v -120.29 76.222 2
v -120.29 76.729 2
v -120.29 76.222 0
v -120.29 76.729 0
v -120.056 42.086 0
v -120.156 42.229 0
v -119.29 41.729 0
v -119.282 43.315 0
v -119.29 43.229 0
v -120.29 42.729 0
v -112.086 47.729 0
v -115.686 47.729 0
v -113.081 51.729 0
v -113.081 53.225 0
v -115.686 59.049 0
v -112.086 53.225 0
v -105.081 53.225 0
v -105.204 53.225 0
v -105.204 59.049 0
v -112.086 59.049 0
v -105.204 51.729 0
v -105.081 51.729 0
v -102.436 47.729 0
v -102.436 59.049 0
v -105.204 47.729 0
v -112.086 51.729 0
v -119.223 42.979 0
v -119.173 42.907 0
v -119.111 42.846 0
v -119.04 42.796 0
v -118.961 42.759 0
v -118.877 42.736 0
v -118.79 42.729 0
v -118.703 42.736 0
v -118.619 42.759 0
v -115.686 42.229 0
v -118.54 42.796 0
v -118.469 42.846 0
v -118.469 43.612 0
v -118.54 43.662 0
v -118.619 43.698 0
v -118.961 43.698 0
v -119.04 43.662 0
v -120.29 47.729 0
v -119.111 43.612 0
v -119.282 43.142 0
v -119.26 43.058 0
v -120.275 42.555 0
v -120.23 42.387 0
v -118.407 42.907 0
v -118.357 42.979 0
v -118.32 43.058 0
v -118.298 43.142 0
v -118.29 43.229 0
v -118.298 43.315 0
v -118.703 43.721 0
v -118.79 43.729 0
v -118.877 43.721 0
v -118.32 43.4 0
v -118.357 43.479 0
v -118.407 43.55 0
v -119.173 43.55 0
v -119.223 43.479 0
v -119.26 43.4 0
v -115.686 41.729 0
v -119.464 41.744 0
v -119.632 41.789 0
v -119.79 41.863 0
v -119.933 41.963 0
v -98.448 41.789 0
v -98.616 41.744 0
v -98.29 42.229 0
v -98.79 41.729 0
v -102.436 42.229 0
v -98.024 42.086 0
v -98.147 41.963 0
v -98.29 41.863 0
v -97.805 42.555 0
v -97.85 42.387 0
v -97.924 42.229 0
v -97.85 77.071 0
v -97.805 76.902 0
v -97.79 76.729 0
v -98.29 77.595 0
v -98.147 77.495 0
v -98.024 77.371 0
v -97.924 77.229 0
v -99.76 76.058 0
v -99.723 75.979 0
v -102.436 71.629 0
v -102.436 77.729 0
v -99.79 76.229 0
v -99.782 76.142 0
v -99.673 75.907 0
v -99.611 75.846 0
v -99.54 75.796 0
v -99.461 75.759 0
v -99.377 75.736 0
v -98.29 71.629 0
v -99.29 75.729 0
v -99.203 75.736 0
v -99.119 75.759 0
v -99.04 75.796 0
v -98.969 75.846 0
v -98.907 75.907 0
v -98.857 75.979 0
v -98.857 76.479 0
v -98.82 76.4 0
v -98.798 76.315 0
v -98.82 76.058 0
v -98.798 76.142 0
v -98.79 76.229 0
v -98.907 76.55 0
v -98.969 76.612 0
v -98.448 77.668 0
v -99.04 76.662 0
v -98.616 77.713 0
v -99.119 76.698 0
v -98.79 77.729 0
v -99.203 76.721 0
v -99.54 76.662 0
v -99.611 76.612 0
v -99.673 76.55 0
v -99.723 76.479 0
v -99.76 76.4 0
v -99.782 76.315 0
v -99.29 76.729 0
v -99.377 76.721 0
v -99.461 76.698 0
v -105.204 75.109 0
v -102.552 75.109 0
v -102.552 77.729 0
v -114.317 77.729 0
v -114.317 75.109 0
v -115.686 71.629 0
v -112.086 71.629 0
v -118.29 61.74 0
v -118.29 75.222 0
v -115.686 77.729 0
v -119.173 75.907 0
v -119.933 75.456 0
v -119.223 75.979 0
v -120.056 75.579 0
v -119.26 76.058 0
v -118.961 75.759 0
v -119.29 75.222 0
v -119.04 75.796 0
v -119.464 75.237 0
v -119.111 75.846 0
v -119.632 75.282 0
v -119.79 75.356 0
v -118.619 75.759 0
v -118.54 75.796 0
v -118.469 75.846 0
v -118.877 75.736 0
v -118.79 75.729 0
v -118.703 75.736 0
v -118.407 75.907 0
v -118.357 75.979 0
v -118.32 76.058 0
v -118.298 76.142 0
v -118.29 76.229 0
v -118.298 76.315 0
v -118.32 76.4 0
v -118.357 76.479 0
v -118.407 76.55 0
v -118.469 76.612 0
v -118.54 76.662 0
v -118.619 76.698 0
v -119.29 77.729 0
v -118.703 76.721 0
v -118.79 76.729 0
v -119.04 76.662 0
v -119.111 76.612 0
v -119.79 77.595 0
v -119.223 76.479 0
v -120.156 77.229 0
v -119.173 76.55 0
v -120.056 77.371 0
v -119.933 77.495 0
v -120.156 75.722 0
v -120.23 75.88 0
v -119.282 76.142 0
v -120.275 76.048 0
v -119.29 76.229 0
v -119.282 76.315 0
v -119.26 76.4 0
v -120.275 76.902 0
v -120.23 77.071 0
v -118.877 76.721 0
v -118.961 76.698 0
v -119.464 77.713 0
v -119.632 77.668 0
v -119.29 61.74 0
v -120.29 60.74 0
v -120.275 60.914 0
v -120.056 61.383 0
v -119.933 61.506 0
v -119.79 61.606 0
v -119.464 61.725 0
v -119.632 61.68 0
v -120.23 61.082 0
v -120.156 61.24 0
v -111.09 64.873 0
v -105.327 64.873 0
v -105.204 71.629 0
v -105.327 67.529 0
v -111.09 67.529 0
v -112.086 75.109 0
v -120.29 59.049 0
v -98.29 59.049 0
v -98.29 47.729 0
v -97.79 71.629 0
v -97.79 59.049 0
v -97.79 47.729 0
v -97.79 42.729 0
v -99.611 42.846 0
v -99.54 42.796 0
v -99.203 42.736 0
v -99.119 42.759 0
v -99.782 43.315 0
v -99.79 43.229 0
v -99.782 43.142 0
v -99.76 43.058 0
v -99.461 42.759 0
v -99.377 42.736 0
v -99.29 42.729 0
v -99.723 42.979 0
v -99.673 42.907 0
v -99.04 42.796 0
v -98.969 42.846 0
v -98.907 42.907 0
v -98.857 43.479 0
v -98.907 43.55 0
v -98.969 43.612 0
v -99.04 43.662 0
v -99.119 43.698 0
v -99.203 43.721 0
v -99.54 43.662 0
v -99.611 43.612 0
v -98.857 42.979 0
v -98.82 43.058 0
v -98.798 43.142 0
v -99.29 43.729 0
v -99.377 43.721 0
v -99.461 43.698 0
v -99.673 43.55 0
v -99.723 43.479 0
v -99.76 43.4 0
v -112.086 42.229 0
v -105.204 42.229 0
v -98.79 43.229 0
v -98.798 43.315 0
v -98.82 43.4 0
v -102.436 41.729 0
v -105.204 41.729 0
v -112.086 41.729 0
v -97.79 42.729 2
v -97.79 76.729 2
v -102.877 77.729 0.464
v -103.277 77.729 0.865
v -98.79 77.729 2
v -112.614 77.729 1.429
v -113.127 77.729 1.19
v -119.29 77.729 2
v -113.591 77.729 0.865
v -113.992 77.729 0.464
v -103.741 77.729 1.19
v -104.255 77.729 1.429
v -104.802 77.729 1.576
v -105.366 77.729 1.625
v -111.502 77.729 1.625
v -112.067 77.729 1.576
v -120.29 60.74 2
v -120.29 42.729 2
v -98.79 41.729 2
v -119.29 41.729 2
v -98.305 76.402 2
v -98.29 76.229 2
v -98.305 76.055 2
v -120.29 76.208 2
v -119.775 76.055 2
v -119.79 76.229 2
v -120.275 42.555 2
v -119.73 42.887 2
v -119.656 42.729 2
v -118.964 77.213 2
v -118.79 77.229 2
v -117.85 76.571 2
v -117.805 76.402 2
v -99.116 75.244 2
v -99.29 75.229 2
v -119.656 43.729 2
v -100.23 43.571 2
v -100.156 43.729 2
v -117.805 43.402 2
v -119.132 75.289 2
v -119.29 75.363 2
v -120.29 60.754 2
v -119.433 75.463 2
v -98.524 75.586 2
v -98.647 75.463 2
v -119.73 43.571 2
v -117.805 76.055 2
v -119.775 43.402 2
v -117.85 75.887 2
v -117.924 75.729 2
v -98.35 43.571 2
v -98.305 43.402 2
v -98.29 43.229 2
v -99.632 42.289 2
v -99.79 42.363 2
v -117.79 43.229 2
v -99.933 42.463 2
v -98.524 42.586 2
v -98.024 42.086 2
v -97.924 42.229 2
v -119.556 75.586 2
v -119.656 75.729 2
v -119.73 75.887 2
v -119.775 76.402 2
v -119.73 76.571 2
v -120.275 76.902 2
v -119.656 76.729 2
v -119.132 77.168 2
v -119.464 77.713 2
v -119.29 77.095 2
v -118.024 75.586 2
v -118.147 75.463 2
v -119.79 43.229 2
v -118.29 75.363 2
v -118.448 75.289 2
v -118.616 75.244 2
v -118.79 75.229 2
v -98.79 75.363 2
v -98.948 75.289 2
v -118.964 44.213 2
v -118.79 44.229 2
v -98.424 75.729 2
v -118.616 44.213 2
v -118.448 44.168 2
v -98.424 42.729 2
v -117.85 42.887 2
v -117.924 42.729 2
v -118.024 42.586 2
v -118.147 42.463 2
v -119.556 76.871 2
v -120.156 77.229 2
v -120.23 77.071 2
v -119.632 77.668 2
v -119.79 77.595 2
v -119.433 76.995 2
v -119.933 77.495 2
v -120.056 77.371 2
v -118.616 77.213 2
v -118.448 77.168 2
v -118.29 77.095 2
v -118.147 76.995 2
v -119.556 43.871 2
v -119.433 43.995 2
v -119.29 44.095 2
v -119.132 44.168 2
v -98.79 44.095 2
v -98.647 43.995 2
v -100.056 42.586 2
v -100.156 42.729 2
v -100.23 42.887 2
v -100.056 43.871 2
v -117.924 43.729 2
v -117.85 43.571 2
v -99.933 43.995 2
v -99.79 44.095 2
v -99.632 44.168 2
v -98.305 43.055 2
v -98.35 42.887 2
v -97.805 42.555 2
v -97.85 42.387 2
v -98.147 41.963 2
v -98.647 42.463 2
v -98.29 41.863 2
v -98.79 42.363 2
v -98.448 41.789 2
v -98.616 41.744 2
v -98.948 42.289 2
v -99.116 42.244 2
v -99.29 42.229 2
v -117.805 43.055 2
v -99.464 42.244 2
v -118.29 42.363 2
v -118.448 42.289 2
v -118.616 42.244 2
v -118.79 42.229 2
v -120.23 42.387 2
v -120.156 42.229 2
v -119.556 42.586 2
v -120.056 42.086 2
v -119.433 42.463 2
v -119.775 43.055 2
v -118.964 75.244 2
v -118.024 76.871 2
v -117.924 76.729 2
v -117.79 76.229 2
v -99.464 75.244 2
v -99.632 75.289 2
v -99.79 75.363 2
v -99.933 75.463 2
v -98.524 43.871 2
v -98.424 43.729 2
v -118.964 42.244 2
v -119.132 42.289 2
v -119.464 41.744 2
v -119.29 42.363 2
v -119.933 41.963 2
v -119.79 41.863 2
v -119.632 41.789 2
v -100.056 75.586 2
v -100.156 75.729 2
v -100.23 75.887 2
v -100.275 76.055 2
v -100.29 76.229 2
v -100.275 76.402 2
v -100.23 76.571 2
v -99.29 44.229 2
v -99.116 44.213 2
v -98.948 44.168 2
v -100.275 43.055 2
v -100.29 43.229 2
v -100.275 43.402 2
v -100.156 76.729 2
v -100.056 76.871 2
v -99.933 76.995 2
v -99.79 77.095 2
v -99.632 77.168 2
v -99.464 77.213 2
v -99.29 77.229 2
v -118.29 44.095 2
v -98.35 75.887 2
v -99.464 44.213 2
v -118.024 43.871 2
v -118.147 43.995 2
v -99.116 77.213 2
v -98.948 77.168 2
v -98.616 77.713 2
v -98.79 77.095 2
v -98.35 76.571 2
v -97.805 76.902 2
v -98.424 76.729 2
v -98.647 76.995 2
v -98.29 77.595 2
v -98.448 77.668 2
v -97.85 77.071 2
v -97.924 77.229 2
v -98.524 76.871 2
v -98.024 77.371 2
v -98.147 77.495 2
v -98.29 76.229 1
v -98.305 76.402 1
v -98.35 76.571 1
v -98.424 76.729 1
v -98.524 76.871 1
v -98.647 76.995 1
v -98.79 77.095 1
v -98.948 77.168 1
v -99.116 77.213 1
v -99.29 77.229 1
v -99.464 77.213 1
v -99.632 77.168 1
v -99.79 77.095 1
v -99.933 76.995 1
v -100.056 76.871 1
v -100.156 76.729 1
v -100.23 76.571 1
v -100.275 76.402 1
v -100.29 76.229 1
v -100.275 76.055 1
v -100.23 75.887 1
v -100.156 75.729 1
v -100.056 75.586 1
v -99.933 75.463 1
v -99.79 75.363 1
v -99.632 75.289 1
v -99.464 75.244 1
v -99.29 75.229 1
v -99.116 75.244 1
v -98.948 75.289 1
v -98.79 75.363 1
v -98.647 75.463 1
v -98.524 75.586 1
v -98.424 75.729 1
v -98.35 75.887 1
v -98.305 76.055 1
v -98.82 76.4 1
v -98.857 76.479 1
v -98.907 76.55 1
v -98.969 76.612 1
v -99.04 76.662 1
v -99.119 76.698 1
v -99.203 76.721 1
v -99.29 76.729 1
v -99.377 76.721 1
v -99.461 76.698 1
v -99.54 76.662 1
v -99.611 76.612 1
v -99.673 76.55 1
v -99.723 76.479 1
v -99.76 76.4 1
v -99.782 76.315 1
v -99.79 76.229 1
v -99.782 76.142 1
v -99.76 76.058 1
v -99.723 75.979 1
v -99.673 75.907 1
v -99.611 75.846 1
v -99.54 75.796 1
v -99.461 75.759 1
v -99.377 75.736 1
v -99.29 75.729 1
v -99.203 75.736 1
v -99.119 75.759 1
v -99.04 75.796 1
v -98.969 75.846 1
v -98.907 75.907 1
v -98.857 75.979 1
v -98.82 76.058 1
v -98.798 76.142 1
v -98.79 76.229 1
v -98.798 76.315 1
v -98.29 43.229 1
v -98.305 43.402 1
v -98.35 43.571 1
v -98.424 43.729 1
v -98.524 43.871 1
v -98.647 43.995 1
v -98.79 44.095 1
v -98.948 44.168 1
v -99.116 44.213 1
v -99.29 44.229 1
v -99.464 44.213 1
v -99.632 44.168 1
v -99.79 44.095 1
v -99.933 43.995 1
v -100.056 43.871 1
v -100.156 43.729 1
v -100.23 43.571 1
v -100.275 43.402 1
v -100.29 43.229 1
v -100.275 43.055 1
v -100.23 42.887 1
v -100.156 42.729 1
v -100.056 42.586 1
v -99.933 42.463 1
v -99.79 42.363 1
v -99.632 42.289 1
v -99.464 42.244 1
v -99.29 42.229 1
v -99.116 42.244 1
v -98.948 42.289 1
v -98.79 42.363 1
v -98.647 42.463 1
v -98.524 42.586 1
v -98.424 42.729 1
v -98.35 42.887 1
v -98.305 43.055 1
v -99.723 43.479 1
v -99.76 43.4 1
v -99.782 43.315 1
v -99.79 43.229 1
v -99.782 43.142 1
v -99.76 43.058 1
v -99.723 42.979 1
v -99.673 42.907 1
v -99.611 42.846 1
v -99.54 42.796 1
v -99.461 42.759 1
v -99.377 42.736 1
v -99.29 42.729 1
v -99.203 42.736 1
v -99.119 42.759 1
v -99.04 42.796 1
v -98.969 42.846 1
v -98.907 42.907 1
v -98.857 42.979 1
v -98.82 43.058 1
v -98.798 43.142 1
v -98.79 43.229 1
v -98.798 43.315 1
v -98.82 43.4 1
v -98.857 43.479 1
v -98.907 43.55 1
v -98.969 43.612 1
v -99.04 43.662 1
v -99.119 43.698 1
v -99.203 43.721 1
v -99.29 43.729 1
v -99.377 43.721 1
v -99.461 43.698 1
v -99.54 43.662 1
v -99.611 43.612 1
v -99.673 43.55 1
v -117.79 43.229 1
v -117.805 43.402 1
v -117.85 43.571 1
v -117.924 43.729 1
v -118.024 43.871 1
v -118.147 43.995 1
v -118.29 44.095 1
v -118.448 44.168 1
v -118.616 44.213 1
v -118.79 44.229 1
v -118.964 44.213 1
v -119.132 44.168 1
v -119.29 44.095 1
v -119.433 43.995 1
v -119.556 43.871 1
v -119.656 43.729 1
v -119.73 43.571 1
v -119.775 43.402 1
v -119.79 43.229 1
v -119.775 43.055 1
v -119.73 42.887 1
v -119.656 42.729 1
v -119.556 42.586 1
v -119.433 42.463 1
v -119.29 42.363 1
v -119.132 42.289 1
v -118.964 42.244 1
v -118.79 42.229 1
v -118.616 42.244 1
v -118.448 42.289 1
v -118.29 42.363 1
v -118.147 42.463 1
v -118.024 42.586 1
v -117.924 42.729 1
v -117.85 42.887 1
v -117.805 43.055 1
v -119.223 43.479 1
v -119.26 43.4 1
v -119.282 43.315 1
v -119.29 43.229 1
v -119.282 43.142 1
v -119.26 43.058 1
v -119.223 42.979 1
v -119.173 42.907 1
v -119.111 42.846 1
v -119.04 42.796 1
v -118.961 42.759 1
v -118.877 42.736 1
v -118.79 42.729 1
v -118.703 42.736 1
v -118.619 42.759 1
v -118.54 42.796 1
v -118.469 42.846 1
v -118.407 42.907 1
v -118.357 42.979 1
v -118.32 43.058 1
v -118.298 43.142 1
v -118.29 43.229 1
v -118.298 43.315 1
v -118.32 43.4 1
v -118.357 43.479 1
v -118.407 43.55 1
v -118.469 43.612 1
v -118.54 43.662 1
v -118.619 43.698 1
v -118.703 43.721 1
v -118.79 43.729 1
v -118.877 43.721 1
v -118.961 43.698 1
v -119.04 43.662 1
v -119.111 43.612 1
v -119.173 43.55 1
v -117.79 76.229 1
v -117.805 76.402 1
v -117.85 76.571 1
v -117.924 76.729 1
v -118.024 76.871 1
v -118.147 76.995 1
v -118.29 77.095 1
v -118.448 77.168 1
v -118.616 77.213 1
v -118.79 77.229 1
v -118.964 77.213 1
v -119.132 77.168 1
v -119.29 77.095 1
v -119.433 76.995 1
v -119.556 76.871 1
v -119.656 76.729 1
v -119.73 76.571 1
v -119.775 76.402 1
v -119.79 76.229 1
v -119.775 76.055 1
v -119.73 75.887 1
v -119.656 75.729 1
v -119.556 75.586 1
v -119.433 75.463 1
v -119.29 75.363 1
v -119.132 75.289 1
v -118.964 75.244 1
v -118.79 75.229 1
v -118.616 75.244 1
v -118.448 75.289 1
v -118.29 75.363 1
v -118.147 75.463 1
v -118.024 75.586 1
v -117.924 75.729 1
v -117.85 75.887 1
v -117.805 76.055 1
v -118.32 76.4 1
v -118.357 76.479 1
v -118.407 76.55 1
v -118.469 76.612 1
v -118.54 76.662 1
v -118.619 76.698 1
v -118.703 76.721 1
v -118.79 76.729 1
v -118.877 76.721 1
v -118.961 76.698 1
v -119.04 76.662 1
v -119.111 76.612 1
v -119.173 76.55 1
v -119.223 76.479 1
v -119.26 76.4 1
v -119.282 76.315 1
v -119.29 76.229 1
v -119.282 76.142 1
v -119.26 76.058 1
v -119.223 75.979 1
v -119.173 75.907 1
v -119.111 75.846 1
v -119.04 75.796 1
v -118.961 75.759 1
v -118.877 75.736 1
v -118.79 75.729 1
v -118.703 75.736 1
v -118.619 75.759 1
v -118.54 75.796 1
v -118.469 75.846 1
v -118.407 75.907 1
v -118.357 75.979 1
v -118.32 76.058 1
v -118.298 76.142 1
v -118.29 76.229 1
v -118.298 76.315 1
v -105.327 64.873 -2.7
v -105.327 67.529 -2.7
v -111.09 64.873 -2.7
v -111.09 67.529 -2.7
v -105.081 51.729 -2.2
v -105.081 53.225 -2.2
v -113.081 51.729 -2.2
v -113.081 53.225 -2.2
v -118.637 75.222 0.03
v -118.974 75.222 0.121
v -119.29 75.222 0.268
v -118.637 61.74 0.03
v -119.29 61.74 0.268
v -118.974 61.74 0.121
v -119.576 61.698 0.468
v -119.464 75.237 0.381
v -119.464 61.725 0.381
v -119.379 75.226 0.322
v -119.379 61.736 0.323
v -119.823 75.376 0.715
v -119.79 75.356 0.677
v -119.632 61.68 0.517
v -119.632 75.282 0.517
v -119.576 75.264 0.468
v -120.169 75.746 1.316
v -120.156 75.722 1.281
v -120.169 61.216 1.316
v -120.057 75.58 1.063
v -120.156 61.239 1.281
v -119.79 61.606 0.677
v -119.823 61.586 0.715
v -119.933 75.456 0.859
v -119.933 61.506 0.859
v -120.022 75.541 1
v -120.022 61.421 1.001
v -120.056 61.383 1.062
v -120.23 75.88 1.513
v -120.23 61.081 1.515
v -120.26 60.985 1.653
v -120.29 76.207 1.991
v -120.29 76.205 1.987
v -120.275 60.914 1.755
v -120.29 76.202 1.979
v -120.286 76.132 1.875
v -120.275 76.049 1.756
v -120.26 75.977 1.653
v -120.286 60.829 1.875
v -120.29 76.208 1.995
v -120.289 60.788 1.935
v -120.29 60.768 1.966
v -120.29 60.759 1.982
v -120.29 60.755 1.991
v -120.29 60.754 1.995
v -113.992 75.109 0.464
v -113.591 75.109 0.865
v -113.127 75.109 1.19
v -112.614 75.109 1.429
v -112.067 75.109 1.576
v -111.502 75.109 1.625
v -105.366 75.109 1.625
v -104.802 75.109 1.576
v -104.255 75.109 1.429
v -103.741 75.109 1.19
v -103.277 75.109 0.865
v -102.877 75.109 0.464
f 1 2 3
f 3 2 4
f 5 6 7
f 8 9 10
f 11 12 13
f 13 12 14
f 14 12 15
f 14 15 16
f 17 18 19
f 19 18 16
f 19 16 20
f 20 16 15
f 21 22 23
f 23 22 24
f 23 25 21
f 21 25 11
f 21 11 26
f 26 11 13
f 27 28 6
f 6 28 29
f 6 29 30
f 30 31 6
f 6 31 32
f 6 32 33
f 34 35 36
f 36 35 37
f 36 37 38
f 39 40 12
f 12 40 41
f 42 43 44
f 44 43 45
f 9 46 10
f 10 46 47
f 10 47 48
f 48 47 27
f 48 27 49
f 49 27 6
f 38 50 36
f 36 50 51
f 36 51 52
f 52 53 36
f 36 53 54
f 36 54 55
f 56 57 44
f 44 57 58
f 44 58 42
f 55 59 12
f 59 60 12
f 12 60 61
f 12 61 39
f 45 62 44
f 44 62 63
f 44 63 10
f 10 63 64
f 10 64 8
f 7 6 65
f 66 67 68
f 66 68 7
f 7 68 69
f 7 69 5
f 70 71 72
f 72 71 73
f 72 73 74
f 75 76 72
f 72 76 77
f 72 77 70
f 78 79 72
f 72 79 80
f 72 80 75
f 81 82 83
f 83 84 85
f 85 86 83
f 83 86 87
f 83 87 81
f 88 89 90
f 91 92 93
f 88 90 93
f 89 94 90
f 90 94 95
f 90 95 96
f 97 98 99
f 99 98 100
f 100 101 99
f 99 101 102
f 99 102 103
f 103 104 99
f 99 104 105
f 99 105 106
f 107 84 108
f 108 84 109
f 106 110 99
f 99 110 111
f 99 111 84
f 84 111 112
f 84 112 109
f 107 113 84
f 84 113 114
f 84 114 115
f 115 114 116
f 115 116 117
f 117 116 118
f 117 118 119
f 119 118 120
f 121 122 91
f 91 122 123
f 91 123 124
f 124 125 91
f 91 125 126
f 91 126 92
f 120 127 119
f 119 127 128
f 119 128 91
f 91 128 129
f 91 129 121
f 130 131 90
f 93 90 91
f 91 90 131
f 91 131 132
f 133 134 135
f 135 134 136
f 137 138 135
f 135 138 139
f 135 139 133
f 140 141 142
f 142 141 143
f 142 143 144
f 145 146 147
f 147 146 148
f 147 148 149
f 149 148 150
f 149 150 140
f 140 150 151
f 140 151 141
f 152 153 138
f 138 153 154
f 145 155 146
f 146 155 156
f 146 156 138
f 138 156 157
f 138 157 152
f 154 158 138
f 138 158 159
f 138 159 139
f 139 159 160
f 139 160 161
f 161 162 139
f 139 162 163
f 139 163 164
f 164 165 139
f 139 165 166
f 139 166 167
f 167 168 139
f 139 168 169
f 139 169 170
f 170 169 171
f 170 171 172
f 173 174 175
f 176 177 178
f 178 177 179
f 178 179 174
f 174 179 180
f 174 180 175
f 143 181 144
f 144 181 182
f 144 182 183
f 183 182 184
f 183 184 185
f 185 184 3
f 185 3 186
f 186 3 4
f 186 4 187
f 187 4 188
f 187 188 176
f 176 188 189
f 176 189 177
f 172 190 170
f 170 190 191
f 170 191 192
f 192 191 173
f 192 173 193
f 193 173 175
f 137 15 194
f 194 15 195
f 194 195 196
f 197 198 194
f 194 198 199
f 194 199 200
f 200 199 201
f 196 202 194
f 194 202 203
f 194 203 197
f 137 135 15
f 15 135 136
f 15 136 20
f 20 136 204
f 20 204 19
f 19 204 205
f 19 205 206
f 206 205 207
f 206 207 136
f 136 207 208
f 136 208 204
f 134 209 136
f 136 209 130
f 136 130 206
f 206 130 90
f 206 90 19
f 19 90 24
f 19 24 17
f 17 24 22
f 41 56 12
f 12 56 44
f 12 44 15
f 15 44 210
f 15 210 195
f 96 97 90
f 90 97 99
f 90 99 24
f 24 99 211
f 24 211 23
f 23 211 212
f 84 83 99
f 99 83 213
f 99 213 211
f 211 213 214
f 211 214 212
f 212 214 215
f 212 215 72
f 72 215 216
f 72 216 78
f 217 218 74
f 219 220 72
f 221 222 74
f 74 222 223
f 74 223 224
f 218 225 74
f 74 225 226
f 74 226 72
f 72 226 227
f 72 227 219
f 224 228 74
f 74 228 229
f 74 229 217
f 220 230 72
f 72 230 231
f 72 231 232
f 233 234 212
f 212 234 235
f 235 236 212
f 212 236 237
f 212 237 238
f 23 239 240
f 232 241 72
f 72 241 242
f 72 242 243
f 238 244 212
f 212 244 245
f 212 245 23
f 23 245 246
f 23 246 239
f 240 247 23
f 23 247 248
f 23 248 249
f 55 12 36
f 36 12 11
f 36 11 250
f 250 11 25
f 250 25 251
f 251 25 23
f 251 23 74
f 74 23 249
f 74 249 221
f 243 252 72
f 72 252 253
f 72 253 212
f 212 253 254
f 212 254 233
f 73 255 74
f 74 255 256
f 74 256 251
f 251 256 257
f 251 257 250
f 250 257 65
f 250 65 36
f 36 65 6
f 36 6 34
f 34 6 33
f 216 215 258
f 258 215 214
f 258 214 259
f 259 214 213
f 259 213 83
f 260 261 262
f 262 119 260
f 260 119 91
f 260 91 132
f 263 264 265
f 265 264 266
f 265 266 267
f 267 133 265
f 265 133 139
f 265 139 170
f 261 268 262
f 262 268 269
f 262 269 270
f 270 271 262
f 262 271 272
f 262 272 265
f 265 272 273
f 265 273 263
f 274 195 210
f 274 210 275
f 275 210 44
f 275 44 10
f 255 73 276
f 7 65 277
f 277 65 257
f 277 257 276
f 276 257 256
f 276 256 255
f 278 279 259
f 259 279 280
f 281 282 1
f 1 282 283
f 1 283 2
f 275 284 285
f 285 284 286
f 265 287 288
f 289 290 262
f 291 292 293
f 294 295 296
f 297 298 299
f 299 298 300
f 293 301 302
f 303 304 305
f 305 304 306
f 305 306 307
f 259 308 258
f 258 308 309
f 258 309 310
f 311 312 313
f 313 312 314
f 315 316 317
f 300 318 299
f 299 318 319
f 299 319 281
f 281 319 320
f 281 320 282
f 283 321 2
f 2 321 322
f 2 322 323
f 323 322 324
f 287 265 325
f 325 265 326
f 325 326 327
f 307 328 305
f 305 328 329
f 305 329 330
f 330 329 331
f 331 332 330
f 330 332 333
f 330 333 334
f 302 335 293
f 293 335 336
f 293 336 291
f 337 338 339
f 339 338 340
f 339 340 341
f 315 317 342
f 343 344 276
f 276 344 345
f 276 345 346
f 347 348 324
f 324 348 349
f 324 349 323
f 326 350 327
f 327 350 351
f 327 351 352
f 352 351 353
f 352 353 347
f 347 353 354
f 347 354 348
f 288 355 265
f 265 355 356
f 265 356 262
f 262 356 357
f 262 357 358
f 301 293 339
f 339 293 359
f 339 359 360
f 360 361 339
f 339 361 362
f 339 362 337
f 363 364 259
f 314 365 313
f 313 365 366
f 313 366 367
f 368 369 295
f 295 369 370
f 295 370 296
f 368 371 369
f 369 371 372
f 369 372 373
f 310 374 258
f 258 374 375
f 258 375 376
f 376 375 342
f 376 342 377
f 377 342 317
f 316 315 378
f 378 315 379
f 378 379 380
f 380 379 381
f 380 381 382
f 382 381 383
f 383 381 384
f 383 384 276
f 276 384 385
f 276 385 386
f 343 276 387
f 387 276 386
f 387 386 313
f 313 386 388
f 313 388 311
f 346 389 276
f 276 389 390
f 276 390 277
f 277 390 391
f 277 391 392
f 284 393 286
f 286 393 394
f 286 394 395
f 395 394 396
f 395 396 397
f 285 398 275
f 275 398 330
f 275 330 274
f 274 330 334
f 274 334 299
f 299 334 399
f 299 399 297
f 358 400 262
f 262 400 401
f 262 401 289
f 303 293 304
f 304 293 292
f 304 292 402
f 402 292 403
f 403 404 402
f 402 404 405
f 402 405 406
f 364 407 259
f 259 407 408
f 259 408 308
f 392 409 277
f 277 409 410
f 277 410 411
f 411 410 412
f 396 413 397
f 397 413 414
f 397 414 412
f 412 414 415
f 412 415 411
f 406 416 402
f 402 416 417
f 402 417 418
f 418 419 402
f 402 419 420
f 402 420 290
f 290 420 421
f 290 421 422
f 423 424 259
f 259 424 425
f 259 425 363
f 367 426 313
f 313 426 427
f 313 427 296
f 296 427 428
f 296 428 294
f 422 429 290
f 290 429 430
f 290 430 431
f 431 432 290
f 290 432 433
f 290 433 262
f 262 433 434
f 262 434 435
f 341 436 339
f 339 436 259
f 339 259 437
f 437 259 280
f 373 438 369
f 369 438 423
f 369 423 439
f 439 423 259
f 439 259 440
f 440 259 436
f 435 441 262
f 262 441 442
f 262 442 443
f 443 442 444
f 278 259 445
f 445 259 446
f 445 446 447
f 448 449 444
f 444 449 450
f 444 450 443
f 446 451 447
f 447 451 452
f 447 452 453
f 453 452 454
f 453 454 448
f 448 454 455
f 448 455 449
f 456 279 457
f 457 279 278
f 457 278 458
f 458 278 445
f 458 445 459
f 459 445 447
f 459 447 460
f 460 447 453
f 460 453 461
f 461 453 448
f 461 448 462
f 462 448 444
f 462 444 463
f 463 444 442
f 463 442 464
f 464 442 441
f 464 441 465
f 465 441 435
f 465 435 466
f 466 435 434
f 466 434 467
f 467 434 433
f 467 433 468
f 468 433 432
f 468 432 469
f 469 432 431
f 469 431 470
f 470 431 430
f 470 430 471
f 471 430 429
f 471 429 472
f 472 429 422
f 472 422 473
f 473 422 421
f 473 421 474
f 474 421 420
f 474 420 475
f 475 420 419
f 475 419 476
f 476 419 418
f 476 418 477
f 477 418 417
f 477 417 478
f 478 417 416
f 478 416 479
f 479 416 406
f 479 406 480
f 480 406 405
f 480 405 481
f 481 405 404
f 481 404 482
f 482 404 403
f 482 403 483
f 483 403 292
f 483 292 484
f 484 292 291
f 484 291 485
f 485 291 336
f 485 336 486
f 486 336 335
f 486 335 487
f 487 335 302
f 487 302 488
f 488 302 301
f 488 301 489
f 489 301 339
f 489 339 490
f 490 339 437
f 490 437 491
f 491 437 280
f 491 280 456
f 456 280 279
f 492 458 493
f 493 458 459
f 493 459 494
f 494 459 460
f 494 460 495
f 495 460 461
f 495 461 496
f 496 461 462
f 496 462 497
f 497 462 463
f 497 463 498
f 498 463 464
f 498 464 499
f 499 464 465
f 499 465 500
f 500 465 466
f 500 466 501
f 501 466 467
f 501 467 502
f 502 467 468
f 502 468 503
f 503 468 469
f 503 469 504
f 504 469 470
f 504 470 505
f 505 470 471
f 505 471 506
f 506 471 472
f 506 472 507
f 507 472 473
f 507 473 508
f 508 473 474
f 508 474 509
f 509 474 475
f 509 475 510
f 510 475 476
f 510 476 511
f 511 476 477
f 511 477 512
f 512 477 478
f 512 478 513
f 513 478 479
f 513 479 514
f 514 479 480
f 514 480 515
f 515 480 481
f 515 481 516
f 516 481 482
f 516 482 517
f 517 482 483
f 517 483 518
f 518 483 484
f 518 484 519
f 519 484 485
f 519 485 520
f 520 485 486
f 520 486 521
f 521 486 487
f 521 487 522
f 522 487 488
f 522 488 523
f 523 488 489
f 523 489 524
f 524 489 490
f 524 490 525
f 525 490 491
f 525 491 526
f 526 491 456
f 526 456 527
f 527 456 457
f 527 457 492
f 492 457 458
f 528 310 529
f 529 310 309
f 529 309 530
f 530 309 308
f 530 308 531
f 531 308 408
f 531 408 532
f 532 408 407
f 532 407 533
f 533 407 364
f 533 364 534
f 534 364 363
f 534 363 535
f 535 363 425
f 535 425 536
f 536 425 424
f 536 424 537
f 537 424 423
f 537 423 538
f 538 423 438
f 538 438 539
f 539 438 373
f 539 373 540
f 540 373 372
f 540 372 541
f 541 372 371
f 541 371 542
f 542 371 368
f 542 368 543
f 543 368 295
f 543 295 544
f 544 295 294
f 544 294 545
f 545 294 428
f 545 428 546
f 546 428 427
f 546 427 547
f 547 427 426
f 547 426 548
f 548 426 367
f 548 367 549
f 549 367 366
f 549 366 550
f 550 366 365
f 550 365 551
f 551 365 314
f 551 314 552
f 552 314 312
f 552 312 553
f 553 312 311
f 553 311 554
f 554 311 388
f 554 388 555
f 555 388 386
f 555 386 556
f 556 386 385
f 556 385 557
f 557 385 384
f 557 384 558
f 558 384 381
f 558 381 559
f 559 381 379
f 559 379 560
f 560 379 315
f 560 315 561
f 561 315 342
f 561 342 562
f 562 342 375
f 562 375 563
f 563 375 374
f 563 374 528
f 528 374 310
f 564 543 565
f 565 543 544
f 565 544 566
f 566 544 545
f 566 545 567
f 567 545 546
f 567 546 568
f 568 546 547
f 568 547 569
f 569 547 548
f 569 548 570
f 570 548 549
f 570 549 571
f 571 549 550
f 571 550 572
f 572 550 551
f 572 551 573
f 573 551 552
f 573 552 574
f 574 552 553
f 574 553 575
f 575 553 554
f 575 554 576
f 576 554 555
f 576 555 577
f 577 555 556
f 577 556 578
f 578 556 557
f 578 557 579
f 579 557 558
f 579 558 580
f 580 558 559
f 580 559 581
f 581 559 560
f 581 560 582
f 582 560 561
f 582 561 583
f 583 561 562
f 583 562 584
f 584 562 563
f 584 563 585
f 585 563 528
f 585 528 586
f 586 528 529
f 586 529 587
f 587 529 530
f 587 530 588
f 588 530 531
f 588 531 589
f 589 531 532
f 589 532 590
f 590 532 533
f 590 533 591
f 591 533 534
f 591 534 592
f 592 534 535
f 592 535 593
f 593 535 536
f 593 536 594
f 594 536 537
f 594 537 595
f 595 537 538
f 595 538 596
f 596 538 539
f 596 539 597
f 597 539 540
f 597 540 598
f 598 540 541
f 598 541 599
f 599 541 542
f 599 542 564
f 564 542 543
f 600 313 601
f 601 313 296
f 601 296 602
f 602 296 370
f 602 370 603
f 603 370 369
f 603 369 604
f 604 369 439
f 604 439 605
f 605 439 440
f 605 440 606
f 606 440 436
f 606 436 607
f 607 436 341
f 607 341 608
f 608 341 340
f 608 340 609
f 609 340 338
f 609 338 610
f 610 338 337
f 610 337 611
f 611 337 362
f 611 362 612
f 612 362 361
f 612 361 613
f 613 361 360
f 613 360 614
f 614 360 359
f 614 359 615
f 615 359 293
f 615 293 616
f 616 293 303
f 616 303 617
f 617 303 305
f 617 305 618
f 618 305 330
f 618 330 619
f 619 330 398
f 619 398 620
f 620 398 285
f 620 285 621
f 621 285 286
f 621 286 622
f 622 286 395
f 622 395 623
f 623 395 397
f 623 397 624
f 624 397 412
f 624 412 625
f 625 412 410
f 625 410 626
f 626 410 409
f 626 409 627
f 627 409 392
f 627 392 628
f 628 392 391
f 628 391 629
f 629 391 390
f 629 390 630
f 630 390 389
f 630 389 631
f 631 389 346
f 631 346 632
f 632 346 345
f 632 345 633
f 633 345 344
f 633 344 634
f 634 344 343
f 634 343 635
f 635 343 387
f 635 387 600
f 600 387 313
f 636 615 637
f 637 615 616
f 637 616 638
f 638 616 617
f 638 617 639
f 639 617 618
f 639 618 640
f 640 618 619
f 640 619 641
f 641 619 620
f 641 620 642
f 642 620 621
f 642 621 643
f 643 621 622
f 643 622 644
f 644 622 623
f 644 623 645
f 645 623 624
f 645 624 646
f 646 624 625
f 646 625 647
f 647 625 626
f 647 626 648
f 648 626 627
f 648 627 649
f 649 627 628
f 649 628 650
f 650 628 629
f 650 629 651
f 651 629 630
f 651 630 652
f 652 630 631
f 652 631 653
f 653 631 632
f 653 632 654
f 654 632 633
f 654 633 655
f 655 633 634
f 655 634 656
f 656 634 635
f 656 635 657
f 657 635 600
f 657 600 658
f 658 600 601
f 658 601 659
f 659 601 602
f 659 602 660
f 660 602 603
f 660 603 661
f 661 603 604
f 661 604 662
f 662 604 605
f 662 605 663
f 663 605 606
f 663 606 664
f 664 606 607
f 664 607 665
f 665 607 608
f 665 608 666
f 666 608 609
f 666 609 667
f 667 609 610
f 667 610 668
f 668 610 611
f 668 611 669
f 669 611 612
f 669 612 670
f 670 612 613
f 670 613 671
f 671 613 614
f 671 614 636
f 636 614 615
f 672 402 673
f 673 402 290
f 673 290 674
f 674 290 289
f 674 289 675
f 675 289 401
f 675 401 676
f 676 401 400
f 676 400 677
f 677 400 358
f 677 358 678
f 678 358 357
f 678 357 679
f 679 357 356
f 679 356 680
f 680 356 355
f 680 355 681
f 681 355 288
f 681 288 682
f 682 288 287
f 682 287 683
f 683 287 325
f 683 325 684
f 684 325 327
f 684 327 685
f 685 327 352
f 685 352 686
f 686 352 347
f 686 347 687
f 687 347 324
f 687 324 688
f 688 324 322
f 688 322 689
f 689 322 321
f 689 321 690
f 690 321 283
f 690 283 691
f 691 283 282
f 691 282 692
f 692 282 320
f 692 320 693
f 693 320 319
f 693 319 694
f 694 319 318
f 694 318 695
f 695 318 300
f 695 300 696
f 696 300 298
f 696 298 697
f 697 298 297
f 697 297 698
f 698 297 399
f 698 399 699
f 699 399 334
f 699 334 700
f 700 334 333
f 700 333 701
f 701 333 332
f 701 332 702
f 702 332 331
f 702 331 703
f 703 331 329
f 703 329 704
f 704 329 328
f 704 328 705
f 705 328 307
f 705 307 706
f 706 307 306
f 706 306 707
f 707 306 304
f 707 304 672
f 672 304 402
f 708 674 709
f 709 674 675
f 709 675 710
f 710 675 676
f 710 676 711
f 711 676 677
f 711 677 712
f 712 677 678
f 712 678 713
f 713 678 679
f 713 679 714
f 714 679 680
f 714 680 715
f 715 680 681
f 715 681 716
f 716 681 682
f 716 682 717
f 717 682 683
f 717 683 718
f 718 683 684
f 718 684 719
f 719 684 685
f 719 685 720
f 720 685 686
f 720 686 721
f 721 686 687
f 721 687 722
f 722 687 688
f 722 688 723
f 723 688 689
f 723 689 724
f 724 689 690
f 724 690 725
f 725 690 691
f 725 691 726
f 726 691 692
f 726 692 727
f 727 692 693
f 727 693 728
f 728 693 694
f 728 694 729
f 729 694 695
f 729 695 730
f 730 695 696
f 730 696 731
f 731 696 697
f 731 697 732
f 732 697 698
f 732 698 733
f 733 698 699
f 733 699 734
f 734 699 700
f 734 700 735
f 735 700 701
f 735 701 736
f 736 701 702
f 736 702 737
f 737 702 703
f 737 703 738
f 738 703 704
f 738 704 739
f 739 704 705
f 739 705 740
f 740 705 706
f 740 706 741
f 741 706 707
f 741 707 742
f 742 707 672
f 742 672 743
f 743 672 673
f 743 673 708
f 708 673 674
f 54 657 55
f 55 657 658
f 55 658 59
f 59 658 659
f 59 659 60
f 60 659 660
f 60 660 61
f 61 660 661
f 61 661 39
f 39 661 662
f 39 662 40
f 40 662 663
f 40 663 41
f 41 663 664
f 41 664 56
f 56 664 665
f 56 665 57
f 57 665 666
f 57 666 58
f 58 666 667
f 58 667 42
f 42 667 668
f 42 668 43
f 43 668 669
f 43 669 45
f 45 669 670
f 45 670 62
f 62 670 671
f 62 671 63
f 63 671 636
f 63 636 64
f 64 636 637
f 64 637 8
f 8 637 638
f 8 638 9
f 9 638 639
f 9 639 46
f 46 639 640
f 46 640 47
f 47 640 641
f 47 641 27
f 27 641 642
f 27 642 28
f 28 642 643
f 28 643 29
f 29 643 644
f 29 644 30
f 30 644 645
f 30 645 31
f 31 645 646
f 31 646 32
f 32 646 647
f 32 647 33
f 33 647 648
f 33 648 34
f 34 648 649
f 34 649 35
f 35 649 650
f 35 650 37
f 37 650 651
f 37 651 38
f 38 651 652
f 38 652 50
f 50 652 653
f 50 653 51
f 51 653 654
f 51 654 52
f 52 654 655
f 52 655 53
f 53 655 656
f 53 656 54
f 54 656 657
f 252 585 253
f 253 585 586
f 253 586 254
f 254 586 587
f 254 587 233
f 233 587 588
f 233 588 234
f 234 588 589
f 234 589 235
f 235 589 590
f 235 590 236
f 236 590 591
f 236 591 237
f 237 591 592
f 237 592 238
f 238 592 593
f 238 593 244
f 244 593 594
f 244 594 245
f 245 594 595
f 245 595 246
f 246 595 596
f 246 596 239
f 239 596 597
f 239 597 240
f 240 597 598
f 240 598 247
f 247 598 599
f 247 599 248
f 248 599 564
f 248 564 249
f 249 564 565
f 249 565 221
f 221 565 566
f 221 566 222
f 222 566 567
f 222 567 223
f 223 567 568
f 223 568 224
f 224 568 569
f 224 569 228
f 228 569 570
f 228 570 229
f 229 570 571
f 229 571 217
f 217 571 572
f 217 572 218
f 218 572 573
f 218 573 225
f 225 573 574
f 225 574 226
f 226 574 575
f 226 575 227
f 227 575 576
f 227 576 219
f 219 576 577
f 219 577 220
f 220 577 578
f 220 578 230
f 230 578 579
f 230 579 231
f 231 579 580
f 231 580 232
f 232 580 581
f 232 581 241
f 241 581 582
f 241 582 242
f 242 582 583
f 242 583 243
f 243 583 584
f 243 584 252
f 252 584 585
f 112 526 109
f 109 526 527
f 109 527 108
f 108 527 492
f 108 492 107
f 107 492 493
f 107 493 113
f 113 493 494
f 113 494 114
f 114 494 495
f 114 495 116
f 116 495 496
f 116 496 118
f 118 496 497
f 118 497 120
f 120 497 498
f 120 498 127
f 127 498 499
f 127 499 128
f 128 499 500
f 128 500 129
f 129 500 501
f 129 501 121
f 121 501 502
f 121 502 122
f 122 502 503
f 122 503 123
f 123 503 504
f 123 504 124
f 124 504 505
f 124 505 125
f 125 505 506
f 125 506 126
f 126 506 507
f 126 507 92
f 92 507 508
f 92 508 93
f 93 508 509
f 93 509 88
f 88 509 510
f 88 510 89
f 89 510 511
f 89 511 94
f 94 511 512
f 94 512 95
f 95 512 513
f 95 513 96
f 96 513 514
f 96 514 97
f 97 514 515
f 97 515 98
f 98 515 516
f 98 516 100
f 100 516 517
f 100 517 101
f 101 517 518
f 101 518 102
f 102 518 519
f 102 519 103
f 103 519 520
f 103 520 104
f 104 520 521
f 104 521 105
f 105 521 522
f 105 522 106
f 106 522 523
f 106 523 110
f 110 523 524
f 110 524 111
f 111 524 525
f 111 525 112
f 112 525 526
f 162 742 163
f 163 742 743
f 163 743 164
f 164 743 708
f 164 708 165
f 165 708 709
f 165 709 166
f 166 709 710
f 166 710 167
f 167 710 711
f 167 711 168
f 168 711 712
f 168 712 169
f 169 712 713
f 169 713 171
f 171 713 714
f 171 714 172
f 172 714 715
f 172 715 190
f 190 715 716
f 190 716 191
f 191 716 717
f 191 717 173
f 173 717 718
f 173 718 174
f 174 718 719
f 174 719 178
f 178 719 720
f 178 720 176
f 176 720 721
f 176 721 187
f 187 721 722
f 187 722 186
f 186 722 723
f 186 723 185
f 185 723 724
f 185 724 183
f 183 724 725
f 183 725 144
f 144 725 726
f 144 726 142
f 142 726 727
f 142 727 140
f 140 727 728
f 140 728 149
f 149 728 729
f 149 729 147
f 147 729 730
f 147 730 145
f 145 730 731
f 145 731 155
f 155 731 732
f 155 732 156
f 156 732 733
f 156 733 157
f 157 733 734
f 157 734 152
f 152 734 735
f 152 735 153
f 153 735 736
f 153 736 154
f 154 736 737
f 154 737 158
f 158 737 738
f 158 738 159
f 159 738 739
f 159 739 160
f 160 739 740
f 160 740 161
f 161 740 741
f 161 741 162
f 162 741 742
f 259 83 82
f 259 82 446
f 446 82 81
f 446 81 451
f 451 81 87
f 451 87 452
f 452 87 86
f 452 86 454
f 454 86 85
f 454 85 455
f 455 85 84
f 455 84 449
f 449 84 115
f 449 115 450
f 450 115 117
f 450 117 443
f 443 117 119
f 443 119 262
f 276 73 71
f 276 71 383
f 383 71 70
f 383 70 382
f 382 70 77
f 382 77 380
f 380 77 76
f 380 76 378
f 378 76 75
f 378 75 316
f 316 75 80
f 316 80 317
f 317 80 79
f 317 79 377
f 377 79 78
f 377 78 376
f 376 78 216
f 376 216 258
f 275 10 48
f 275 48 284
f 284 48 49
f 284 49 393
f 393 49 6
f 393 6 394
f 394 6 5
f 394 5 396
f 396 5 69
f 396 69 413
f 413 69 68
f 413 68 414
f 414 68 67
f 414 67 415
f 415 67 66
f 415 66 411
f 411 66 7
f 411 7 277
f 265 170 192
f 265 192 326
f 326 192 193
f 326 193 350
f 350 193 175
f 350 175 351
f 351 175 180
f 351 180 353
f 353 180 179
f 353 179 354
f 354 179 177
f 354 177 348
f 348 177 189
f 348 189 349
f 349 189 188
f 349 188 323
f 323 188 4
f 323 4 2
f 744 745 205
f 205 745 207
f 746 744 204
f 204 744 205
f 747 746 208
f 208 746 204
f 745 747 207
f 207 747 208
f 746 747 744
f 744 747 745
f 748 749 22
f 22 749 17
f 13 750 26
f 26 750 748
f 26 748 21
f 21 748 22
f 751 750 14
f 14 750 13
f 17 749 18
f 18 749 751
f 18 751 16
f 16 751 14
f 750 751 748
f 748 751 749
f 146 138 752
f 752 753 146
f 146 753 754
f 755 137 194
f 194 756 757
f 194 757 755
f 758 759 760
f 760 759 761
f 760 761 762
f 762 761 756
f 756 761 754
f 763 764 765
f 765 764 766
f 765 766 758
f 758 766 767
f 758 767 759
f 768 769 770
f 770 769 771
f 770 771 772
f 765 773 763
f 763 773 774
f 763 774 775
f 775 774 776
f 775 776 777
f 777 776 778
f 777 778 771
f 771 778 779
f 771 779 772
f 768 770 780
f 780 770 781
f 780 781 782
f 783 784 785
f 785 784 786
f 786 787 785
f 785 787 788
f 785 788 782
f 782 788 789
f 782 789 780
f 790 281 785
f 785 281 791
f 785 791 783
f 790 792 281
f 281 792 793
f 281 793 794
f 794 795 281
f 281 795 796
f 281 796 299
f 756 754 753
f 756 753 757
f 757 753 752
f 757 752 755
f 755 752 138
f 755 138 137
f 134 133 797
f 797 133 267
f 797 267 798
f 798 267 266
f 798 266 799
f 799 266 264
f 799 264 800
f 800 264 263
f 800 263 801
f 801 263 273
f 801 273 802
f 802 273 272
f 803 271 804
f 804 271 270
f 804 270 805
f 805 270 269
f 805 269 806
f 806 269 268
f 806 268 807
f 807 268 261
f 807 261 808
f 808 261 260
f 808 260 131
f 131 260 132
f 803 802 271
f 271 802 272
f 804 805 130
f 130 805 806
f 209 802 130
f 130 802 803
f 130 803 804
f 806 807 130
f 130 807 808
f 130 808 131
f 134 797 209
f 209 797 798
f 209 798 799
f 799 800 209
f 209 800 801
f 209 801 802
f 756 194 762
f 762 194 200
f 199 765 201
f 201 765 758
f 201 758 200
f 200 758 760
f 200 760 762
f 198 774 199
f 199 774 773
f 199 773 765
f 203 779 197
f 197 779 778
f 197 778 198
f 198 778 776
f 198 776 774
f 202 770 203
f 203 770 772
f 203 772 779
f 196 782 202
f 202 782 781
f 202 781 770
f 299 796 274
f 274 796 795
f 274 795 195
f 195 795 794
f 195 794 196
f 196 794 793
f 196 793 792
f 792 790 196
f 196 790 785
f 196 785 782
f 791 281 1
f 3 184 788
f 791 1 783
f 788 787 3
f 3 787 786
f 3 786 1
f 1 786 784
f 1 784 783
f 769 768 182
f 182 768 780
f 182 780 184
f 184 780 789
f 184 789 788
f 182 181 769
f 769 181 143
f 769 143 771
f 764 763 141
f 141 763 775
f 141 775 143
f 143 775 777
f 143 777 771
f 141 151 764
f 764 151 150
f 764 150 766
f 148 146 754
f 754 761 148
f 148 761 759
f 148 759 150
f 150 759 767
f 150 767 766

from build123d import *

# Parameters (mm, degrees)
SKETCH_1_W          = 22.5
SKETCH_1_H          = 36
EXTRUDE_1_DEPTH     = 2
SKETCH_9_R          = 1
CUT_EXTRUDE_3_DEPTH = 1
CUT_EXTRUDE_4_REACH = 145.222
SKETCH_10_R         = 0.5
FILLET_1_R          = 1
SKETCH_11_W         = 5.762947655
SKETCH_11_H         = 2.6557086
EXTRUDE_2_DEPTH     = 2.7
SKETCH_12_W         = 8
SKETCH_12_H         = 1.496173859
EXTRUDE_3_DEPTH     = 2.2
SKETCH_14_W         = 2
SKETCH_14_H         = 13.482091112
CUT_EXTRUDE_6_DEPTH = 0.0001
FILLET_3_R          = 2
CUT_EXTRUDE_7_DEPTH = 2.62
FILLET_7_R          = 1


with BuildPart() as part:
    # 草图1 → 凸台-拉伸1 (new body)
    with BuildSketch(Plane.XY):
        with Locations((-109.040086771, 59.72858385)):
            Rectangle(SKETCH_1_W, SKETCH_1_H)
    extrude(amount=EXTRUDE_1_DEPTH)

    # 草图9 → 切除-拉伸3 (cut)
    with BuildSketch(Plane.XY.offset(2)):
        with Locations((-99.290086771, 76.22858385)):
            Circle(SKETCH_9_R)
        with Locations((-99.290086771, 43.22858385)):
            Circle(SKETCH_9_R)
        with Locations((-118.790086771, 43.22858385)):
            Circle(SKETCH_9_R)
        with Locations((-118.790086771, 76.22858385)):
            Circle(SKETCH_9_R)
    extrude(amount=-CUT_EXTRUDE_3_DEPTH, mode=Mode.SUBTRACT)

    # 草图10 → 切除-拉伸4 (cut, up to next)
    with BuildSketch(Plane.XY.offset(1), mode=Mode.PRIVATE) as cut_extrude_4_sk1:
        with Locations((-118.790086771, 43.22858385)):
            Circle(SKETCH_10_R)
    cut_extrude_4_tool1 = extrude(cut_extrude_4_sk1.sketch, amount=-CUT_EXTRUDE_4_REACH, mode=Mode.PRIVATE) & part.part
    # 草图10 → 切除-拉伸4 (cut, up to next)
    with BuildSketch(Plane.XY.offset(1), mode=Mode.PRIVATE) as cut_extrude_4_sk2:
        with Locations((-99.290086771, 43.22858385)):
            Circle(SKETCH_10_R)
    cut_extrude_4_tool2 = extrude(cut_extrude_4_sk2.sketch, amount=-CUT_EXTRUDE_4_REACH, mode=Mode.PRIVATE) & part.part
    # 草图10 → 切除-拉伸4 (cut, up to next)
    with BuildSketch(Plane.XY.offset(1), mode=Mode.PRIVATE) as cut_extrude_4_sk3:
        with Locations((-99.290086771, 76.22858385)):
            Circle(SKETCH_10_R)
    cut_extrude_4_tool3 = extrude(cut_extrude_4_sk3.sketch, amount=-CUT_EXTRUDE_4_REACH, mode=Mode.PRIVATE) & part.part
    # 草图10 → 切除-拉伸4 (cut, up to next)
    with BuildSketch(Plane.XY.offset(1), mode=Mode.PRIVATE) as cut_extrude_4_sk4:
        with Locations((-118.790086771, 76.22858385)):
            Circle(SKETCH_10_R)
    cut_extrude_4_tool4 = extrude(cut_extrude_4_sk4.sketch, amount=-CUT_EXTRUDE_4_REACH, mode=Mode.PRIVATE) & part.part
    add(cut_extrude_4_tool1.solids().sort_by_distance((-118.790087, 43.228584, 1))[0], mode=Mode.SUBTRACT)
    add(cut_extrude_4_tool2.solids().sort_by_distance((-99.290087, 43.228584, 1))[0], mode=Mode.SUBTRACT)
    add(cut_extrude_4_tool3.solids().sort_by_distance((-99.290087, 76.228584, 1))[0], mode=Mode.SUBTRACT)
    add(cut_extrude_4_tool4.solids().sort_by_distance((-118.790087, 76.228584, 1))[0], mode=Mode.SUBTRACT)

    # 圆角1
    fillet_1_edges = [part.edges().sort_by_distance(p)[0] for p in [
        (-97.790086771, 41.72858385, 1),
        (-120.290086771, 41.72858385, 1),
        (-120.290086771, 77.72858385, 1),
        (-97.790086771, 77.72858385, 1),
    ]]
    fillet(fillet_1_edges, radius=FILLET_1_R)

    # 草图11 → 凸台-拉伸2 (add)
    with BuildSketch(Plane(origin=(0, 0, 0), x_dir=(-1, 0, 0), z_dir=(0, 0, -1))):
        with Locations((108.208612944, 66.20072955)):
            Rectangle(SKETCH_11_W, SKETCH_11_H)
    extrude(amount=EXTRUDE_2_DEPTH)

    # 草图12 → 凸台-拉伸3 (add)
    with BuildSketch(Plane(origin=(0, 0, 0), x_dir=(-1, 0, 0), z_dir=(0, 0, -1))):
        with Locations((109.081368677, 52.476670779)):
            Rectangle(SKETCH_12_W, SKETCH_12_H)
    extrude(amount=EXTRUDE_3_DEPTH)

    # 草图14 → 切除-拉伸6 (cut)
    with BuildSketch(Plane.ZY.offset(120.290086771)):
        with Locations((1, 68.480990424)):
            Rectangle(SKETCH_14_W, SKETCH_14_H)
    extrude(amount=-CUT_EXTRUDE_6_DEPTH, mode=Mode.SUBTRACT)

    # 圆角3
    # the kernel refuses this fillet: 2 mm, written as the material it takes off along each edge
    with BuildSketch(Plane(origin=(-120.289986771, 61.739944868, 0), x_dir=(1, 0, 0), z_dir=(0, 1, 0))) as fillet_3_piece_1:
        with BuildLine():
            CenterArc((FILLET_3_R, -FILLET_3_R), FILLET_3_R, 90, 90)
            Line((0, -FILLET_3_R), (0, 0))
            Line((0, 0), (FILLET_3_R, 0))
        make_face()
    extrude(amount=13.482091112, mode=Mode.SUBTRACT)

    # 草图16 → 切除-拉伸7 (cut)
    with BuildSketch(Plane(origin=(0, 77.72858385, 0), x_dir=(1, 0, 0), z_dir=(0, 1, 0))):
        with BuildLine():
            Line((-111.502300349, 4.875), (-105.366426438, 4.875))
            ThreePointArc((-105.366426438, 4.875), (-102.116426438, 1.625), (-105.366426438, -1.625))
            Line((-105.366426438, -1.625), (-111.502300349, -1.625))
            ThreePointArc((-111.502300349, -1.625), (-114.752300349, 1.625), (-111.502300349, 4.875))
        make_face()
    extrude(amount=-CUT_EXTRUDE_7_DEPTH, mode=Mode.SUBTRACT)

    # 圆角7
    # the kernel refuses this fillet: 1 mm, written as the material it takes off along each edge
    with BuildSketch(Plane(origin=(-120.290086771, 61.739944868, 4.5), x_dir=(0, -1, 0), z_dir=(0, 0, -1))) as fillet_7_piece_1_section:
        with BuildLine():
            CenterArc((FILLET_7_R, -FILLET_7_R), FILLET_7_R, 90, 90)
            Line((0, -FILLET_7_R), (0, 0))
            Line((0, 0), (FILLET_7_R, 0))
        make_face()
    fillet_7_piece_1 = extrude(amount=7, mode=Mode.PRIVATE)
    fillet_7_piece_1 = fillet_7_piece_1 - Plane(origin=(-118.289986771, 61.479548888, 2), x_dir=(1, 0, 0), z_dir=(0, -1, 0)) * Cylinder(2, 18, mode=Mode.PRIVATE)
    add(fillet_7_piece_1, mode=Mode.SUBTRACT)
    with BuildSketch(Plane(origin=(-120.290086771, 75.22203598, -2.5), x_dir=(1, 0, 0), z_dir=(0, 0, 1))) as fillet_7_piece_2_section:
        with BuildLine():
            CenterArc((FILLET_7_R, FILLET_7_R), FILLET_7_R, 180, 90)
            Line((0, FILLET_7_R), (0, 0))
            Line((0, 0), (FILLET_7_R, 0))
        make_face()
    fillet_7_piece_2 = extrude(amount=7, mode=Mode.PRIVATE)
    fillet_7_piece_2 = fillet_7_piece_2 - Plane(origin=(-118.289986771, 75.482431596, 2), x_dir=(1, 0, 0), z_dir=(0, -1, 0)) * Cylinder(2, 18, mode=Mode.PRIVATE)
    add(fillet_7_piece_2, mode=Mode.SUBTRACT)


solid = part.part
